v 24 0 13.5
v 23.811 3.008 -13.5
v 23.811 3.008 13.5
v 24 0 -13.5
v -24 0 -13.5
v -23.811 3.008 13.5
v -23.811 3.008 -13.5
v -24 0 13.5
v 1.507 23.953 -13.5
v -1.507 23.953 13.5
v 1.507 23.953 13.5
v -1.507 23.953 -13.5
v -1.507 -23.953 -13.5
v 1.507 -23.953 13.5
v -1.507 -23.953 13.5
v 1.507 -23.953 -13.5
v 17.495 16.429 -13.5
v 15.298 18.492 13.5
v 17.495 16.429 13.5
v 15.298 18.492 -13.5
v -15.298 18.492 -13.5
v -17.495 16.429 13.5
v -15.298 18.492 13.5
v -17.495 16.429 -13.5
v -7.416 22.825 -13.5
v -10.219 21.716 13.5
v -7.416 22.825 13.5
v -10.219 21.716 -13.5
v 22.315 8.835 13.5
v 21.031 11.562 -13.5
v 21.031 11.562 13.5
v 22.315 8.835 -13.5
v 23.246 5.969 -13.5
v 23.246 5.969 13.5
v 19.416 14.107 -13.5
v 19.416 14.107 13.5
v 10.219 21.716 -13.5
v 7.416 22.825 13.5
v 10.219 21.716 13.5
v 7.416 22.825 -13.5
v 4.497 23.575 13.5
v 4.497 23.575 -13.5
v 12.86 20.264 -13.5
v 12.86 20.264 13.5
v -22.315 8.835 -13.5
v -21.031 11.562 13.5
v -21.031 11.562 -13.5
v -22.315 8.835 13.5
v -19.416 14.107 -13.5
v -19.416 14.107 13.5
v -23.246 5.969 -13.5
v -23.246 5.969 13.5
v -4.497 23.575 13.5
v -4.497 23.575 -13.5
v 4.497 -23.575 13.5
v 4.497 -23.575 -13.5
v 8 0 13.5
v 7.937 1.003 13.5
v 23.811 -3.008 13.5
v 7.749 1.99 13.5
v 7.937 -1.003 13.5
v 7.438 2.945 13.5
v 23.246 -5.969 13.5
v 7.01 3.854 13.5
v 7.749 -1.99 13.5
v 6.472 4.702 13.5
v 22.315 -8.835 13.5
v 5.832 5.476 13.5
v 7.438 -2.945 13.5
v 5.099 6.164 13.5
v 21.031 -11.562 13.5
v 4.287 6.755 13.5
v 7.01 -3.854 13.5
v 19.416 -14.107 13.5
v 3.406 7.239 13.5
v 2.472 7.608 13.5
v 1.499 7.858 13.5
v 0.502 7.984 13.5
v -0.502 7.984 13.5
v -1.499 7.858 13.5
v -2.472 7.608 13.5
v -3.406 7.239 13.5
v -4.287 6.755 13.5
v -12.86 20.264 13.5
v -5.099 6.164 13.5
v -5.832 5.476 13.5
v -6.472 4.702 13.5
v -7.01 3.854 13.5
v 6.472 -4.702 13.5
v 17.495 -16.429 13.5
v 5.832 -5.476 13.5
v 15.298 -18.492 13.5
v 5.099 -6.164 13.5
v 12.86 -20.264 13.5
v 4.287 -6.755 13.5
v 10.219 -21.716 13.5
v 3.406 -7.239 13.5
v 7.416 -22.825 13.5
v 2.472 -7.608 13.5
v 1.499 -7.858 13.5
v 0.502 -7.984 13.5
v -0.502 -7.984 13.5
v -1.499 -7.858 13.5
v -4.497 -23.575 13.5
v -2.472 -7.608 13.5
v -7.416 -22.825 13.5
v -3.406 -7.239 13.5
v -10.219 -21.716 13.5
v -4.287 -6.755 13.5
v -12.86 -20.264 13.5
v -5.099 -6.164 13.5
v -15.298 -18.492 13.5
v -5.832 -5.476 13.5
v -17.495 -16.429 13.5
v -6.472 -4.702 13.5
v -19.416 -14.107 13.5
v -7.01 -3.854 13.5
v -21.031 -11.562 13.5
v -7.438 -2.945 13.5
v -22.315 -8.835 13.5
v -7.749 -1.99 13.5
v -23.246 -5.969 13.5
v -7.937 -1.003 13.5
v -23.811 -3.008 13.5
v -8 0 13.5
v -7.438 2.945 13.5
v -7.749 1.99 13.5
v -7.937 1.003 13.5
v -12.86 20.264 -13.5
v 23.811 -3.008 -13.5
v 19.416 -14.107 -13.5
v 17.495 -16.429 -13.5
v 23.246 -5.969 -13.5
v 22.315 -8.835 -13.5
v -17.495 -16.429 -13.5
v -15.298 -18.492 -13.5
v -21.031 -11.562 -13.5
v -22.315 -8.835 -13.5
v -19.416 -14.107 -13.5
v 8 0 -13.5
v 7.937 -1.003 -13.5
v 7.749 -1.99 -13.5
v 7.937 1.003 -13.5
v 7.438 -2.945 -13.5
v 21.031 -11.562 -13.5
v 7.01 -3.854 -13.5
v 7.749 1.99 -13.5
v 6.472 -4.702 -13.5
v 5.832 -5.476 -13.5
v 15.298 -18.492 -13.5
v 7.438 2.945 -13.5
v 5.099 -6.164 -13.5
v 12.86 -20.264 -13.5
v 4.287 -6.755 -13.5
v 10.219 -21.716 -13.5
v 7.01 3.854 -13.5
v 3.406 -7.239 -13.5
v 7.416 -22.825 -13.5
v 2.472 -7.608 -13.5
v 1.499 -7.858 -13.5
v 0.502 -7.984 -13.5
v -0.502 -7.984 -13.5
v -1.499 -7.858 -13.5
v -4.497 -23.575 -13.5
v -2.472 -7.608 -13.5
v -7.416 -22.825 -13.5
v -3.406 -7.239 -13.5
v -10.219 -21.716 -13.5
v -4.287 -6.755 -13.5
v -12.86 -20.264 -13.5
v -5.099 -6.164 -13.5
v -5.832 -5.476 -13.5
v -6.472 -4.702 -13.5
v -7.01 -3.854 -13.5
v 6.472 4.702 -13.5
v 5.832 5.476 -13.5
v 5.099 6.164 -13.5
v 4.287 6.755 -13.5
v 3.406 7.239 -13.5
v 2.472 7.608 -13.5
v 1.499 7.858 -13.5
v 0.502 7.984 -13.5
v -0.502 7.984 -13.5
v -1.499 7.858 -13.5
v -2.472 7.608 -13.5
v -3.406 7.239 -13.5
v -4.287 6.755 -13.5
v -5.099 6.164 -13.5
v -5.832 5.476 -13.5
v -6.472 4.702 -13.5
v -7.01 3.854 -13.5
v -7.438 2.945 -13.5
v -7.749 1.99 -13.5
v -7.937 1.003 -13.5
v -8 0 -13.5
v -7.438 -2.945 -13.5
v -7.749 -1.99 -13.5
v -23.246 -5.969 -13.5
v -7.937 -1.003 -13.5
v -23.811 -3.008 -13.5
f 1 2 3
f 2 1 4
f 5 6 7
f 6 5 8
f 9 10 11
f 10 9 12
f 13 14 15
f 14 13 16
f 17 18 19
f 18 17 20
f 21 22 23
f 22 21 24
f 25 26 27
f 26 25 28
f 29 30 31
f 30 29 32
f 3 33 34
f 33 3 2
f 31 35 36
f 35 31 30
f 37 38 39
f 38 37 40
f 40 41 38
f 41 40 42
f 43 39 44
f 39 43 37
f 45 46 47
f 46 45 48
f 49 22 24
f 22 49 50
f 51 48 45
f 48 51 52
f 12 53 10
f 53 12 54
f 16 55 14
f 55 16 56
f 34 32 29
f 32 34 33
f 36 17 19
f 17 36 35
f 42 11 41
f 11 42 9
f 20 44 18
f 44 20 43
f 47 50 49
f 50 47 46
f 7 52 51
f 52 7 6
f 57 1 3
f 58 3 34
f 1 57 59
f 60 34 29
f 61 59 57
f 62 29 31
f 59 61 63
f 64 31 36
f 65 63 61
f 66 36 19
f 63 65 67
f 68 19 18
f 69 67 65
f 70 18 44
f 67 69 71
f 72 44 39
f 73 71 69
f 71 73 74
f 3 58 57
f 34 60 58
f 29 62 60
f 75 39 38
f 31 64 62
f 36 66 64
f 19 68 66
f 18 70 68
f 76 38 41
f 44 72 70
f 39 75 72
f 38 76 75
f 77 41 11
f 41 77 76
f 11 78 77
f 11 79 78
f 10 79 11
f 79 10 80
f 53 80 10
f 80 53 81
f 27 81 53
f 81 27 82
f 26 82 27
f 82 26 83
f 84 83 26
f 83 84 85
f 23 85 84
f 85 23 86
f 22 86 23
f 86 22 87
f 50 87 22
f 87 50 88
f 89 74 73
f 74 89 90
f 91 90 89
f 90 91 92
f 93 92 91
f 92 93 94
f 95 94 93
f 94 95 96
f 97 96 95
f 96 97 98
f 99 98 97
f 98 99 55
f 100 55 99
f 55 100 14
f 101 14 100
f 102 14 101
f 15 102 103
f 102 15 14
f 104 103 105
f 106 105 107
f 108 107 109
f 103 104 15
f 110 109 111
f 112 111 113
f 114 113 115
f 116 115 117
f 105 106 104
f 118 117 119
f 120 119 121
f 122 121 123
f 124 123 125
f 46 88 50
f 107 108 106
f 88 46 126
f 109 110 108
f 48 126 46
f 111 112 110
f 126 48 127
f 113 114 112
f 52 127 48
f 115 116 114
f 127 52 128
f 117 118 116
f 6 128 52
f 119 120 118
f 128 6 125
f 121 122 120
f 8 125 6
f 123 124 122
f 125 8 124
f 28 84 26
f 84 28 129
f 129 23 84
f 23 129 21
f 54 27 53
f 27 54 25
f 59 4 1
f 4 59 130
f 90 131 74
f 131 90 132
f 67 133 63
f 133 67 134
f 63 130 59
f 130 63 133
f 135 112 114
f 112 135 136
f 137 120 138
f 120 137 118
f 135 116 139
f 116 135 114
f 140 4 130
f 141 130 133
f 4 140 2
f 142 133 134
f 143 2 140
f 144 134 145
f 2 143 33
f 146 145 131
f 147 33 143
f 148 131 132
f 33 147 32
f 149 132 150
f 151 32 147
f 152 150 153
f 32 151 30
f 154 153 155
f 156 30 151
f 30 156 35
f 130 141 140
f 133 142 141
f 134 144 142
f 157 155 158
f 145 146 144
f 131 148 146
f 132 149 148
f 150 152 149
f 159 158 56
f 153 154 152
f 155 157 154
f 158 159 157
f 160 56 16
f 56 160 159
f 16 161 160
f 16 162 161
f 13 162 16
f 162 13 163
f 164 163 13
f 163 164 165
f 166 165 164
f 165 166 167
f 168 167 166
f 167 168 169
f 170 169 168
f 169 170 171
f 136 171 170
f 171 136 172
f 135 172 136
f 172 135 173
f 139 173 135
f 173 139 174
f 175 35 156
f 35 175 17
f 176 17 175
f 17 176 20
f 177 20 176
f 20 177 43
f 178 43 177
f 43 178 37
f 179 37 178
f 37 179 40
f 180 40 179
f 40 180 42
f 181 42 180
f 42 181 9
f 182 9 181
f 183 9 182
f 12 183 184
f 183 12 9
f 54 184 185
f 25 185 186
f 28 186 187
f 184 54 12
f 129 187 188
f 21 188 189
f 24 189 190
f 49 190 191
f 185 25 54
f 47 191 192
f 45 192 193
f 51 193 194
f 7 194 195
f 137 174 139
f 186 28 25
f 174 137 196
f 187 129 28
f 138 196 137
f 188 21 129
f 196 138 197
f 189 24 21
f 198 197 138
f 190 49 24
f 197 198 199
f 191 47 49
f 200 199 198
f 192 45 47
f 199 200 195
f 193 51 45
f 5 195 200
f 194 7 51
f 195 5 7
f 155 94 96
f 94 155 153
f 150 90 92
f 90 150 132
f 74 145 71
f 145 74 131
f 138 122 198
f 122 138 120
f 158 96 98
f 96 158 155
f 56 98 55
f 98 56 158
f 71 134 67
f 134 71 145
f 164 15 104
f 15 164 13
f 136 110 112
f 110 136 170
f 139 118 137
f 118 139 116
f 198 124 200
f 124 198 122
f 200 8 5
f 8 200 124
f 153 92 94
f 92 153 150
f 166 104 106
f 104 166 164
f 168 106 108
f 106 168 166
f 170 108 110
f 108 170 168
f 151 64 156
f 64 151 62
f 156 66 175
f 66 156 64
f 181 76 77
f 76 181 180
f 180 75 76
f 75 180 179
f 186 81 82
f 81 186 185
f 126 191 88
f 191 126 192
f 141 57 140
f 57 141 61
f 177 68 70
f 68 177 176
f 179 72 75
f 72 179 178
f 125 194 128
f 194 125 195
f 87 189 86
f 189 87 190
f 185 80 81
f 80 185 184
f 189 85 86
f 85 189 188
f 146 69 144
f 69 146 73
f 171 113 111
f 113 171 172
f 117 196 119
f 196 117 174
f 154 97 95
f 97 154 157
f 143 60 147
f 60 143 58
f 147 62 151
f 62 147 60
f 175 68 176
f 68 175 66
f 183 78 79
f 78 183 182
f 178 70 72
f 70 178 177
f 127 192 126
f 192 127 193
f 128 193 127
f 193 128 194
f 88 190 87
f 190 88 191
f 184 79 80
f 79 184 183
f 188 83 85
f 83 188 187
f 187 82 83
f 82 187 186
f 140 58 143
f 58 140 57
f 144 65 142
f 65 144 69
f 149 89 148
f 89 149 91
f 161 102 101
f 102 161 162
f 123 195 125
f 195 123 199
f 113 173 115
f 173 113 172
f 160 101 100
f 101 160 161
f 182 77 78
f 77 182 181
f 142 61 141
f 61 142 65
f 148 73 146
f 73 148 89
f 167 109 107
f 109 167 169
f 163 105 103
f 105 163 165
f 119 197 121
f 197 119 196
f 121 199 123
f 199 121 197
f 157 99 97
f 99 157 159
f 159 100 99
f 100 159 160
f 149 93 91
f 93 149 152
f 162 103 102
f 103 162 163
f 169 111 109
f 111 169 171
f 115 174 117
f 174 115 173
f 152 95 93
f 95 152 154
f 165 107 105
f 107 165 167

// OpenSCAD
$fn = 50;


difference() {
	union() {
		translate(v = [0, 0, -13.5000000000]) {
			cylinder(h = 27, r = 24.0000000000);
		}
	}
	union() {
		translate(v = [0, 0, -100.0000000000]) {
			cylinder(h = 200, r = 8);
		}
	}
}
